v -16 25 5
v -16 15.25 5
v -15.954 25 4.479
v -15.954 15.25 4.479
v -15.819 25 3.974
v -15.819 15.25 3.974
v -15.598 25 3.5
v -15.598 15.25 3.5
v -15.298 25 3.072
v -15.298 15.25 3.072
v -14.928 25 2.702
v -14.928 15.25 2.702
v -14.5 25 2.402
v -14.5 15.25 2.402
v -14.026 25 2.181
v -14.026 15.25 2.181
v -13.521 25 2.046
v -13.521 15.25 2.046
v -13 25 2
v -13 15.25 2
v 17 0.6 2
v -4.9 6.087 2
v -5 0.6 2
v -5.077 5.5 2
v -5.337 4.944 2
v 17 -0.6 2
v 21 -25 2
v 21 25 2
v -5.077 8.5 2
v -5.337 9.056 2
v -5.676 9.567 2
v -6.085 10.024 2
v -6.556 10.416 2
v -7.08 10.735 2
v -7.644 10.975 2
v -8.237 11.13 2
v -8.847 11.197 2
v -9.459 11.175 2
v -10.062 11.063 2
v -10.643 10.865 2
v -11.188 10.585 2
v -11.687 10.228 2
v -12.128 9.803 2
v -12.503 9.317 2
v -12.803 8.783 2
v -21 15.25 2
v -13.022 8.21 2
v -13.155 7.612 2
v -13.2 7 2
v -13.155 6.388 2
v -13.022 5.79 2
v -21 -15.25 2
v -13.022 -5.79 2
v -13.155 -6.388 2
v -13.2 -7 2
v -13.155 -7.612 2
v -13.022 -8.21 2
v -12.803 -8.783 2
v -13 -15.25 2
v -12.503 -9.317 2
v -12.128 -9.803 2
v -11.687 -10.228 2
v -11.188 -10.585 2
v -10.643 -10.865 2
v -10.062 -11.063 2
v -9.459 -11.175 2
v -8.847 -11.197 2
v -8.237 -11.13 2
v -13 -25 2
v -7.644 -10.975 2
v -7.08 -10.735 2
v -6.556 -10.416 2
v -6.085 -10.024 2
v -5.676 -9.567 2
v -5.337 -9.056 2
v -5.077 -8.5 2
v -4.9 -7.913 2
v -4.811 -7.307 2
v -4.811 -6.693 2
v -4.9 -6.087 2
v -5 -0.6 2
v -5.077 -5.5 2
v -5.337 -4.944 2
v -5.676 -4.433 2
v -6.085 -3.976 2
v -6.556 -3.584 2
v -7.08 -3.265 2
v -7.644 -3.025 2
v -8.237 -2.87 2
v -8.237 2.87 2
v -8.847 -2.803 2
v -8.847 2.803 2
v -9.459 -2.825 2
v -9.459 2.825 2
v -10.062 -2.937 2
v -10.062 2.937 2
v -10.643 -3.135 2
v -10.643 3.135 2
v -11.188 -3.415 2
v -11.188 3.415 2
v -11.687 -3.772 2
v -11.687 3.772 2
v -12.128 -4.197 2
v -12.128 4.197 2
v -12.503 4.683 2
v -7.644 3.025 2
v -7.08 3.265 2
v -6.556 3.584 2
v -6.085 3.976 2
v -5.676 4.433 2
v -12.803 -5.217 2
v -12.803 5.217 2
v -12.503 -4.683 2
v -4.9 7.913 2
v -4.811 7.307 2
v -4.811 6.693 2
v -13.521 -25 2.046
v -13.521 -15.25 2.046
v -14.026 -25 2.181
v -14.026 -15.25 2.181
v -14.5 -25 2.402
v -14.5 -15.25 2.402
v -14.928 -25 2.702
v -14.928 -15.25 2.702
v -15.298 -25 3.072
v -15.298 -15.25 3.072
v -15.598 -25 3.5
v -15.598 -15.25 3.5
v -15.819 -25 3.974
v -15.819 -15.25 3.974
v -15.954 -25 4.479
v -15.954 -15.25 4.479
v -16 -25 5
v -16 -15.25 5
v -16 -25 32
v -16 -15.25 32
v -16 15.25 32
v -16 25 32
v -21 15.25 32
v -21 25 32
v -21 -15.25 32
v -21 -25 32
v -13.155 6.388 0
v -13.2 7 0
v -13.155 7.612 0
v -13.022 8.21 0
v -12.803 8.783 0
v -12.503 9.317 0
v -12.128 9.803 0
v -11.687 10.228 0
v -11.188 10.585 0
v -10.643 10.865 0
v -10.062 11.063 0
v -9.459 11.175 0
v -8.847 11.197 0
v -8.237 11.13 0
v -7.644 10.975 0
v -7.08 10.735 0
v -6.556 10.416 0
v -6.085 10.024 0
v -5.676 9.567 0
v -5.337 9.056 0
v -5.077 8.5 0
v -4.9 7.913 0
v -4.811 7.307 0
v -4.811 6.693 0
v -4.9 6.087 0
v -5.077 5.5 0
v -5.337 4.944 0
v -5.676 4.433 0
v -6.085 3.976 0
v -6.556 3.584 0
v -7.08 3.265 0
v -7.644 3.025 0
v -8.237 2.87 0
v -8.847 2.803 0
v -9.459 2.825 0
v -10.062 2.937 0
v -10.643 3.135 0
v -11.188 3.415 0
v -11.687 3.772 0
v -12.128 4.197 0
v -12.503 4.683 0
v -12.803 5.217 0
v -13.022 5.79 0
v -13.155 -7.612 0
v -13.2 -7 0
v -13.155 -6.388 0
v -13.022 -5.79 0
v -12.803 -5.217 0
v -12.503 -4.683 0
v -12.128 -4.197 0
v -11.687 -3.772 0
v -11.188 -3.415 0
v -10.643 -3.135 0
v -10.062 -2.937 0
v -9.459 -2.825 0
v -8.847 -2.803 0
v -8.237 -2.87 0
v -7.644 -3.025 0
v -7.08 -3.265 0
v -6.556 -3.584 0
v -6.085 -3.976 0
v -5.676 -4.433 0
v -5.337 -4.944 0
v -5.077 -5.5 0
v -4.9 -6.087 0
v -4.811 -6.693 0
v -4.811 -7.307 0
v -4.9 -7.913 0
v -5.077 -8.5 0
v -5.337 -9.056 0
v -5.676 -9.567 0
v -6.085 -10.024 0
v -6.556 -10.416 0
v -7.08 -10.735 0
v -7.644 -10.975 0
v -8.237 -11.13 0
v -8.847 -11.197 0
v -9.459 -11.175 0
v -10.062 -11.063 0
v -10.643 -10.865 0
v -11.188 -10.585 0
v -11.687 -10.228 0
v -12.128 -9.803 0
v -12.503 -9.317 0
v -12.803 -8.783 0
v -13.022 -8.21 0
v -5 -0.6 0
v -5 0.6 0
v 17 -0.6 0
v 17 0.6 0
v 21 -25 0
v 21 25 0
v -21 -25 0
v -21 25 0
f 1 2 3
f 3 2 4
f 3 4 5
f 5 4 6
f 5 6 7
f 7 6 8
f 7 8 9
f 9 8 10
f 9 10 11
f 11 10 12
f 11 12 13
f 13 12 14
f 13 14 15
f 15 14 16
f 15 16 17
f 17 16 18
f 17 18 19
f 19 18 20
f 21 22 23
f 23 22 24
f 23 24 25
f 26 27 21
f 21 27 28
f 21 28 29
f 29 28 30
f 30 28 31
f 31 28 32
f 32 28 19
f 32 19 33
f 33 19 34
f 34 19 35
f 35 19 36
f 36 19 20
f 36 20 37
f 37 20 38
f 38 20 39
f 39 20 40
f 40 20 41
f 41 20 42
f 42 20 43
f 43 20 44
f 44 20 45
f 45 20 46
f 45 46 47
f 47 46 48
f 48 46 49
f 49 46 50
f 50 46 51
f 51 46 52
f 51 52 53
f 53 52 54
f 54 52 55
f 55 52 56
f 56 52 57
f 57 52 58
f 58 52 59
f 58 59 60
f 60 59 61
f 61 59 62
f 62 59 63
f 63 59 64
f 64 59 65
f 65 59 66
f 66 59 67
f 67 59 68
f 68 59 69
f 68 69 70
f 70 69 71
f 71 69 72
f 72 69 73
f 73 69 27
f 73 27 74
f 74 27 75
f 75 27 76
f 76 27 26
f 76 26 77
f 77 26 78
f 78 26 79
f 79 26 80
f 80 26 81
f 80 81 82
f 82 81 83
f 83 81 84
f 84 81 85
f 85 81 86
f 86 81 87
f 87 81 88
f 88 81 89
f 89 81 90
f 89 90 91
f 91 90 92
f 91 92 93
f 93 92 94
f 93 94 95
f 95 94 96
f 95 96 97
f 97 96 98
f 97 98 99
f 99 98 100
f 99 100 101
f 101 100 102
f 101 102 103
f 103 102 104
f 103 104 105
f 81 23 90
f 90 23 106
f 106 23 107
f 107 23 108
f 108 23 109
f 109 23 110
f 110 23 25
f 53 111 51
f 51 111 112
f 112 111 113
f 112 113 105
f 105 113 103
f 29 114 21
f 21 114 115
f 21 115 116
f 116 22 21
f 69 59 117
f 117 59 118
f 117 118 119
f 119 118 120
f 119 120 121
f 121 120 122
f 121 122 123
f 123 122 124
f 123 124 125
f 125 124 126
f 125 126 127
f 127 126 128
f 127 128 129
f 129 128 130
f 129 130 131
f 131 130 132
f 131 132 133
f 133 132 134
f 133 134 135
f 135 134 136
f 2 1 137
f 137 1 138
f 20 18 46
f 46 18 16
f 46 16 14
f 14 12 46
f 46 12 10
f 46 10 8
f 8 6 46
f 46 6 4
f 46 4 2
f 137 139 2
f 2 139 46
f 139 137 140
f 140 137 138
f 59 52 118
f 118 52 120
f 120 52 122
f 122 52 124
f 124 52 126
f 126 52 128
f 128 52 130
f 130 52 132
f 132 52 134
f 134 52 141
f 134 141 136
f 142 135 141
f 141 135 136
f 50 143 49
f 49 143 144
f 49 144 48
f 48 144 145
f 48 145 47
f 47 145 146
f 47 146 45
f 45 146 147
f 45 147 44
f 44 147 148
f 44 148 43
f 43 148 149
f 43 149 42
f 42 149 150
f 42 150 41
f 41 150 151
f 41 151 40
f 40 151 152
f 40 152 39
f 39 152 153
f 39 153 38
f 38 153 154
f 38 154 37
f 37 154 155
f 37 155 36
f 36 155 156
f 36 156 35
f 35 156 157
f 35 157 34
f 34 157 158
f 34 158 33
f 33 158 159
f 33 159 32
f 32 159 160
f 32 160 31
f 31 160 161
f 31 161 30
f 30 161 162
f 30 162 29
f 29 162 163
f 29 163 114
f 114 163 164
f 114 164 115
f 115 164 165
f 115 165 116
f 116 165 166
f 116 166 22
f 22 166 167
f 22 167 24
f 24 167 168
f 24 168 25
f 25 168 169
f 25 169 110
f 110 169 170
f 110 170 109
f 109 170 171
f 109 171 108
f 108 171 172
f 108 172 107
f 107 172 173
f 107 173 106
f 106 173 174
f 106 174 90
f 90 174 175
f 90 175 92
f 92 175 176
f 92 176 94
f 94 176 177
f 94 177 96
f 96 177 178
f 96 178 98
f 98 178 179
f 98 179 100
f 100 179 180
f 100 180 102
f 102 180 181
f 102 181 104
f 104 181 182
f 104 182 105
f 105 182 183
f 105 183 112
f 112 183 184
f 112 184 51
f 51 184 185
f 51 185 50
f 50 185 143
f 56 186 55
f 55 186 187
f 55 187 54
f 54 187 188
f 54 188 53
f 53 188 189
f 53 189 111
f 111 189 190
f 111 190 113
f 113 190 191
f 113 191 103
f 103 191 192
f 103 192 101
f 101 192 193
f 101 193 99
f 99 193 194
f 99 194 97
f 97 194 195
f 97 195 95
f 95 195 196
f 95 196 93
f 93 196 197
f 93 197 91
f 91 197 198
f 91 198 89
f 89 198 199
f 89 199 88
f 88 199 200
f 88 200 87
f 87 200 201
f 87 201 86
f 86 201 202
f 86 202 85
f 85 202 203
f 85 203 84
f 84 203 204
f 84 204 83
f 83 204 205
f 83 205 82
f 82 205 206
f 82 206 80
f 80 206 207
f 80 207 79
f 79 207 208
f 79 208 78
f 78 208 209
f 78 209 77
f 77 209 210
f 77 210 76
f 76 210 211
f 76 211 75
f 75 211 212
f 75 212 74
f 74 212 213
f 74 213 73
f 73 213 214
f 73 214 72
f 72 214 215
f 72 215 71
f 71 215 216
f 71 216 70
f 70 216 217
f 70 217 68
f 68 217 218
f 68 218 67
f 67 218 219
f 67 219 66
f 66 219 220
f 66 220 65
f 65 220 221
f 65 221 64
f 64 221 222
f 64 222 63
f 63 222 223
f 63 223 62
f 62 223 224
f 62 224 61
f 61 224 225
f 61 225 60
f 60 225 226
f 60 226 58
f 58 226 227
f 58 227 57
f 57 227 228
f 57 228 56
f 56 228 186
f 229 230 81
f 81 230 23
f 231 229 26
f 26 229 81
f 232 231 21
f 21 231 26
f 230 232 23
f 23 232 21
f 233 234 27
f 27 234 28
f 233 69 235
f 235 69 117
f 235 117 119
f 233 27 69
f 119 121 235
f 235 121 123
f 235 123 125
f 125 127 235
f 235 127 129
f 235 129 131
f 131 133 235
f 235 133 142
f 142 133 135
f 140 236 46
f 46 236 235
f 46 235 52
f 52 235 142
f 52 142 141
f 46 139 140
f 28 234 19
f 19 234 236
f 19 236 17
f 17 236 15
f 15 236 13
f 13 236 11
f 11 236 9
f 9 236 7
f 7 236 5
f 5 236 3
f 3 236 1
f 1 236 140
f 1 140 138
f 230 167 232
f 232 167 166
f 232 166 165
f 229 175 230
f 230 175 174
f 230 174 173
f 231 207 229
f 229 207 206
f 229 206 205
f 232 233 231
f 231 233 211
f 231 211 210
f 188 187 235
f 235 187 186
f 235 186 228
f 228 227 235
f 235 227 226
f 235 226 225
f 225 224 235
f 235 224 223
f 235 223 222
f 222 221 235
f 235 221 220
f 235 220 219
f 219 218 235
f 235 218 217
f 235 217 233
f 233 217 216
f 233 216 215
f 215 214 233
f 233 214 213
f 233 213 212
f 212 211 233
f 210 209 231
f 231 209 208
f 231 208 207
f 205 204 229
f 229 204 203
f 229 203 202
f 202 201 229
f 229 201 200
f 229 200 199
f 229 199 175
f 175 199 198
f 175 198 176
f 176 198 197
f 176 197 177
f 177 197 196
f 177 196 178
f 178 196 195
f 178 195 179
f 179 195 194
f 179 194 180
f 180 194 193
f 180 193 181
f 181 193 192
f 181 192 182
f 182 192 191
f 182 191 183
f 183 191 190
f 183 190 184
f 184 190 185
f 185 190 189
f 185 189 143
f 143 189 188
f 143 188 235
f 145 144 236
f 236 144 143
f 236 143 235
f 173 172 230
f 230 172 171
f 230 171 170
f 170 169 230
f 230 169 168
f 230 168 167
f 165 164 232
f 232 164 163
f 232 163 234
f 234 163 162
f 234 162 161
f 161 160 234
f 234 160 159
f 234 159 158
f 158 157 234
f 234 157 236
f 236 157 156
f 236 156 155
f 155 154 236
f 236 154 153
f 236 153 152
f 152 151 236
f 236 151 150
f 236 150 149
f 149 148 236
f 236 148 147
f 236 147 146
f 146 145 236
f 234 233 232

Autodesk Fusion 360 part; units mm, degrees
sketch "Sketch1" plane through (0, 0, 0) normal (0, 0, 1) x (1, 0, 0)
  line L0 (21, -25) -> (-21, -25)
  line L1 (-21, -25) -> (-21, 25)
  line L2 (-21, 25) -> (21, 25)
  line L3 (21, 25) -> (21, -25)
  line L4 (21, -25) -> (-21, 25) construction
  line L5 (-21, -25) -> (21, 25) construction
  line L6 (-21, 0) -> (-9, 0) construction
  line L7 (-9, 0) -> (-9, -7) construction
  line L8 (-9, -7) -> (-21, -7) construction
  line L9 (-21, -7) -> (-21, 0) construction
  line L10 (-21, 0) -> (-9, 0) construction
  line L11 (-9, 0) -> (-9, 7) construction
  line L12 (-9, 7) -> (-21, 7) construction
  line L13 (-21, 7) -> (-21, 0) construction
  circle A0 centre (-9, 7) radius 4.2
  circle A1 centre (-9, -7) radius 4.2
  line L14 (-21, 0) -> (6, 0) construction
  line L15 (17, -0.6) -> (-5, -0.6)
  line L16 (-5, -0.6) -> (-5, 0.6)
  line L17 (-5, 0.6) -> (17, 0.6)
  line L18 (17, 0.6) -> (17, -0.6)
  line L19 (17, -0.6) -> (-5, 0.6) construction
  line L20 (-5, -0.6) -> (17, 0.6) construction
  point P0 (6, 0)
  dimension "d1" = 42
  dimension "d2" = 50
  dimension "d3" = 12
  dimension "d4" = 7
  dimension "d5" = 12
  dimension "d6" = 7
  dimension "d7" = 8.4
  dimension "d8" = 8.4
  dimension "d9" = 27
  dimension "d10" = 22
  dimension "d11" = 1.2
extrude "Extrude1" add sketch "Sketch1" along normal blind 2 makes body 1
sketch "Sketch2" plane through (0, 0, 2) normal (0, 0, 1) x (-1, 0, 0)
  line L0 (5, -0.6) -> (-17, -0.6)
  line L1 (-17, -0.6) -> (-17, 0.6)
  line L2 (-17, 0.6) -> (5, 0.6)
  line L3 (5, 0.6) -> (5, -0.6)
  circle A0 centre (9, 7) radius 4.2
  circle A1 centre (9, -7) radius 4.2
  line L4 (-21, -25) -> (21, -25)
  line L5 (21, -25) -> (21, 25)
  line L6 (21, 25) -> (-21, 25)
  line L7 (-21, 25) -> (-21, -25)
  line L8 (21, -25) -> (16, -25)
  line L9 (16, -25) -> (16, -15.25)
  line L10 (16, -15.25) -> (21, -15.25)
  line L11 (21, -15.25) -> (21, -25)
  line L12 (21, 25) -> (16, 25)
  line L13 (16, 25) -> (16, 15.25)
  line L14 (16, 15.25) -> (21, 15.25)
  line L15 (21, 15.25) -> (21, 25)
  dimension "d14" = 5
  dimension "d15" = 9.75
  dimension "d16" = 5
  dimension "d17" = 9.75
extrude "Extrude2" add sketch "Sketch2" along normal blind 30 contours L4 L5 L8 L9 L10 L11 | L5 L6 L12 L13 L14 L15 bodies 1
fillet "Fillet1" radius 3 2 edges at (-16, -20.125, 2) (-16, 20.125, 2) on bodies 1
copy_body "Body->Comp1" bodies 1 removing the originals makes body 2 in component "Slit"
component "Slit" placed x (1, 0, 0) y (0, 1, 0) z (0, 0, 1) at (0, 0, 0)
